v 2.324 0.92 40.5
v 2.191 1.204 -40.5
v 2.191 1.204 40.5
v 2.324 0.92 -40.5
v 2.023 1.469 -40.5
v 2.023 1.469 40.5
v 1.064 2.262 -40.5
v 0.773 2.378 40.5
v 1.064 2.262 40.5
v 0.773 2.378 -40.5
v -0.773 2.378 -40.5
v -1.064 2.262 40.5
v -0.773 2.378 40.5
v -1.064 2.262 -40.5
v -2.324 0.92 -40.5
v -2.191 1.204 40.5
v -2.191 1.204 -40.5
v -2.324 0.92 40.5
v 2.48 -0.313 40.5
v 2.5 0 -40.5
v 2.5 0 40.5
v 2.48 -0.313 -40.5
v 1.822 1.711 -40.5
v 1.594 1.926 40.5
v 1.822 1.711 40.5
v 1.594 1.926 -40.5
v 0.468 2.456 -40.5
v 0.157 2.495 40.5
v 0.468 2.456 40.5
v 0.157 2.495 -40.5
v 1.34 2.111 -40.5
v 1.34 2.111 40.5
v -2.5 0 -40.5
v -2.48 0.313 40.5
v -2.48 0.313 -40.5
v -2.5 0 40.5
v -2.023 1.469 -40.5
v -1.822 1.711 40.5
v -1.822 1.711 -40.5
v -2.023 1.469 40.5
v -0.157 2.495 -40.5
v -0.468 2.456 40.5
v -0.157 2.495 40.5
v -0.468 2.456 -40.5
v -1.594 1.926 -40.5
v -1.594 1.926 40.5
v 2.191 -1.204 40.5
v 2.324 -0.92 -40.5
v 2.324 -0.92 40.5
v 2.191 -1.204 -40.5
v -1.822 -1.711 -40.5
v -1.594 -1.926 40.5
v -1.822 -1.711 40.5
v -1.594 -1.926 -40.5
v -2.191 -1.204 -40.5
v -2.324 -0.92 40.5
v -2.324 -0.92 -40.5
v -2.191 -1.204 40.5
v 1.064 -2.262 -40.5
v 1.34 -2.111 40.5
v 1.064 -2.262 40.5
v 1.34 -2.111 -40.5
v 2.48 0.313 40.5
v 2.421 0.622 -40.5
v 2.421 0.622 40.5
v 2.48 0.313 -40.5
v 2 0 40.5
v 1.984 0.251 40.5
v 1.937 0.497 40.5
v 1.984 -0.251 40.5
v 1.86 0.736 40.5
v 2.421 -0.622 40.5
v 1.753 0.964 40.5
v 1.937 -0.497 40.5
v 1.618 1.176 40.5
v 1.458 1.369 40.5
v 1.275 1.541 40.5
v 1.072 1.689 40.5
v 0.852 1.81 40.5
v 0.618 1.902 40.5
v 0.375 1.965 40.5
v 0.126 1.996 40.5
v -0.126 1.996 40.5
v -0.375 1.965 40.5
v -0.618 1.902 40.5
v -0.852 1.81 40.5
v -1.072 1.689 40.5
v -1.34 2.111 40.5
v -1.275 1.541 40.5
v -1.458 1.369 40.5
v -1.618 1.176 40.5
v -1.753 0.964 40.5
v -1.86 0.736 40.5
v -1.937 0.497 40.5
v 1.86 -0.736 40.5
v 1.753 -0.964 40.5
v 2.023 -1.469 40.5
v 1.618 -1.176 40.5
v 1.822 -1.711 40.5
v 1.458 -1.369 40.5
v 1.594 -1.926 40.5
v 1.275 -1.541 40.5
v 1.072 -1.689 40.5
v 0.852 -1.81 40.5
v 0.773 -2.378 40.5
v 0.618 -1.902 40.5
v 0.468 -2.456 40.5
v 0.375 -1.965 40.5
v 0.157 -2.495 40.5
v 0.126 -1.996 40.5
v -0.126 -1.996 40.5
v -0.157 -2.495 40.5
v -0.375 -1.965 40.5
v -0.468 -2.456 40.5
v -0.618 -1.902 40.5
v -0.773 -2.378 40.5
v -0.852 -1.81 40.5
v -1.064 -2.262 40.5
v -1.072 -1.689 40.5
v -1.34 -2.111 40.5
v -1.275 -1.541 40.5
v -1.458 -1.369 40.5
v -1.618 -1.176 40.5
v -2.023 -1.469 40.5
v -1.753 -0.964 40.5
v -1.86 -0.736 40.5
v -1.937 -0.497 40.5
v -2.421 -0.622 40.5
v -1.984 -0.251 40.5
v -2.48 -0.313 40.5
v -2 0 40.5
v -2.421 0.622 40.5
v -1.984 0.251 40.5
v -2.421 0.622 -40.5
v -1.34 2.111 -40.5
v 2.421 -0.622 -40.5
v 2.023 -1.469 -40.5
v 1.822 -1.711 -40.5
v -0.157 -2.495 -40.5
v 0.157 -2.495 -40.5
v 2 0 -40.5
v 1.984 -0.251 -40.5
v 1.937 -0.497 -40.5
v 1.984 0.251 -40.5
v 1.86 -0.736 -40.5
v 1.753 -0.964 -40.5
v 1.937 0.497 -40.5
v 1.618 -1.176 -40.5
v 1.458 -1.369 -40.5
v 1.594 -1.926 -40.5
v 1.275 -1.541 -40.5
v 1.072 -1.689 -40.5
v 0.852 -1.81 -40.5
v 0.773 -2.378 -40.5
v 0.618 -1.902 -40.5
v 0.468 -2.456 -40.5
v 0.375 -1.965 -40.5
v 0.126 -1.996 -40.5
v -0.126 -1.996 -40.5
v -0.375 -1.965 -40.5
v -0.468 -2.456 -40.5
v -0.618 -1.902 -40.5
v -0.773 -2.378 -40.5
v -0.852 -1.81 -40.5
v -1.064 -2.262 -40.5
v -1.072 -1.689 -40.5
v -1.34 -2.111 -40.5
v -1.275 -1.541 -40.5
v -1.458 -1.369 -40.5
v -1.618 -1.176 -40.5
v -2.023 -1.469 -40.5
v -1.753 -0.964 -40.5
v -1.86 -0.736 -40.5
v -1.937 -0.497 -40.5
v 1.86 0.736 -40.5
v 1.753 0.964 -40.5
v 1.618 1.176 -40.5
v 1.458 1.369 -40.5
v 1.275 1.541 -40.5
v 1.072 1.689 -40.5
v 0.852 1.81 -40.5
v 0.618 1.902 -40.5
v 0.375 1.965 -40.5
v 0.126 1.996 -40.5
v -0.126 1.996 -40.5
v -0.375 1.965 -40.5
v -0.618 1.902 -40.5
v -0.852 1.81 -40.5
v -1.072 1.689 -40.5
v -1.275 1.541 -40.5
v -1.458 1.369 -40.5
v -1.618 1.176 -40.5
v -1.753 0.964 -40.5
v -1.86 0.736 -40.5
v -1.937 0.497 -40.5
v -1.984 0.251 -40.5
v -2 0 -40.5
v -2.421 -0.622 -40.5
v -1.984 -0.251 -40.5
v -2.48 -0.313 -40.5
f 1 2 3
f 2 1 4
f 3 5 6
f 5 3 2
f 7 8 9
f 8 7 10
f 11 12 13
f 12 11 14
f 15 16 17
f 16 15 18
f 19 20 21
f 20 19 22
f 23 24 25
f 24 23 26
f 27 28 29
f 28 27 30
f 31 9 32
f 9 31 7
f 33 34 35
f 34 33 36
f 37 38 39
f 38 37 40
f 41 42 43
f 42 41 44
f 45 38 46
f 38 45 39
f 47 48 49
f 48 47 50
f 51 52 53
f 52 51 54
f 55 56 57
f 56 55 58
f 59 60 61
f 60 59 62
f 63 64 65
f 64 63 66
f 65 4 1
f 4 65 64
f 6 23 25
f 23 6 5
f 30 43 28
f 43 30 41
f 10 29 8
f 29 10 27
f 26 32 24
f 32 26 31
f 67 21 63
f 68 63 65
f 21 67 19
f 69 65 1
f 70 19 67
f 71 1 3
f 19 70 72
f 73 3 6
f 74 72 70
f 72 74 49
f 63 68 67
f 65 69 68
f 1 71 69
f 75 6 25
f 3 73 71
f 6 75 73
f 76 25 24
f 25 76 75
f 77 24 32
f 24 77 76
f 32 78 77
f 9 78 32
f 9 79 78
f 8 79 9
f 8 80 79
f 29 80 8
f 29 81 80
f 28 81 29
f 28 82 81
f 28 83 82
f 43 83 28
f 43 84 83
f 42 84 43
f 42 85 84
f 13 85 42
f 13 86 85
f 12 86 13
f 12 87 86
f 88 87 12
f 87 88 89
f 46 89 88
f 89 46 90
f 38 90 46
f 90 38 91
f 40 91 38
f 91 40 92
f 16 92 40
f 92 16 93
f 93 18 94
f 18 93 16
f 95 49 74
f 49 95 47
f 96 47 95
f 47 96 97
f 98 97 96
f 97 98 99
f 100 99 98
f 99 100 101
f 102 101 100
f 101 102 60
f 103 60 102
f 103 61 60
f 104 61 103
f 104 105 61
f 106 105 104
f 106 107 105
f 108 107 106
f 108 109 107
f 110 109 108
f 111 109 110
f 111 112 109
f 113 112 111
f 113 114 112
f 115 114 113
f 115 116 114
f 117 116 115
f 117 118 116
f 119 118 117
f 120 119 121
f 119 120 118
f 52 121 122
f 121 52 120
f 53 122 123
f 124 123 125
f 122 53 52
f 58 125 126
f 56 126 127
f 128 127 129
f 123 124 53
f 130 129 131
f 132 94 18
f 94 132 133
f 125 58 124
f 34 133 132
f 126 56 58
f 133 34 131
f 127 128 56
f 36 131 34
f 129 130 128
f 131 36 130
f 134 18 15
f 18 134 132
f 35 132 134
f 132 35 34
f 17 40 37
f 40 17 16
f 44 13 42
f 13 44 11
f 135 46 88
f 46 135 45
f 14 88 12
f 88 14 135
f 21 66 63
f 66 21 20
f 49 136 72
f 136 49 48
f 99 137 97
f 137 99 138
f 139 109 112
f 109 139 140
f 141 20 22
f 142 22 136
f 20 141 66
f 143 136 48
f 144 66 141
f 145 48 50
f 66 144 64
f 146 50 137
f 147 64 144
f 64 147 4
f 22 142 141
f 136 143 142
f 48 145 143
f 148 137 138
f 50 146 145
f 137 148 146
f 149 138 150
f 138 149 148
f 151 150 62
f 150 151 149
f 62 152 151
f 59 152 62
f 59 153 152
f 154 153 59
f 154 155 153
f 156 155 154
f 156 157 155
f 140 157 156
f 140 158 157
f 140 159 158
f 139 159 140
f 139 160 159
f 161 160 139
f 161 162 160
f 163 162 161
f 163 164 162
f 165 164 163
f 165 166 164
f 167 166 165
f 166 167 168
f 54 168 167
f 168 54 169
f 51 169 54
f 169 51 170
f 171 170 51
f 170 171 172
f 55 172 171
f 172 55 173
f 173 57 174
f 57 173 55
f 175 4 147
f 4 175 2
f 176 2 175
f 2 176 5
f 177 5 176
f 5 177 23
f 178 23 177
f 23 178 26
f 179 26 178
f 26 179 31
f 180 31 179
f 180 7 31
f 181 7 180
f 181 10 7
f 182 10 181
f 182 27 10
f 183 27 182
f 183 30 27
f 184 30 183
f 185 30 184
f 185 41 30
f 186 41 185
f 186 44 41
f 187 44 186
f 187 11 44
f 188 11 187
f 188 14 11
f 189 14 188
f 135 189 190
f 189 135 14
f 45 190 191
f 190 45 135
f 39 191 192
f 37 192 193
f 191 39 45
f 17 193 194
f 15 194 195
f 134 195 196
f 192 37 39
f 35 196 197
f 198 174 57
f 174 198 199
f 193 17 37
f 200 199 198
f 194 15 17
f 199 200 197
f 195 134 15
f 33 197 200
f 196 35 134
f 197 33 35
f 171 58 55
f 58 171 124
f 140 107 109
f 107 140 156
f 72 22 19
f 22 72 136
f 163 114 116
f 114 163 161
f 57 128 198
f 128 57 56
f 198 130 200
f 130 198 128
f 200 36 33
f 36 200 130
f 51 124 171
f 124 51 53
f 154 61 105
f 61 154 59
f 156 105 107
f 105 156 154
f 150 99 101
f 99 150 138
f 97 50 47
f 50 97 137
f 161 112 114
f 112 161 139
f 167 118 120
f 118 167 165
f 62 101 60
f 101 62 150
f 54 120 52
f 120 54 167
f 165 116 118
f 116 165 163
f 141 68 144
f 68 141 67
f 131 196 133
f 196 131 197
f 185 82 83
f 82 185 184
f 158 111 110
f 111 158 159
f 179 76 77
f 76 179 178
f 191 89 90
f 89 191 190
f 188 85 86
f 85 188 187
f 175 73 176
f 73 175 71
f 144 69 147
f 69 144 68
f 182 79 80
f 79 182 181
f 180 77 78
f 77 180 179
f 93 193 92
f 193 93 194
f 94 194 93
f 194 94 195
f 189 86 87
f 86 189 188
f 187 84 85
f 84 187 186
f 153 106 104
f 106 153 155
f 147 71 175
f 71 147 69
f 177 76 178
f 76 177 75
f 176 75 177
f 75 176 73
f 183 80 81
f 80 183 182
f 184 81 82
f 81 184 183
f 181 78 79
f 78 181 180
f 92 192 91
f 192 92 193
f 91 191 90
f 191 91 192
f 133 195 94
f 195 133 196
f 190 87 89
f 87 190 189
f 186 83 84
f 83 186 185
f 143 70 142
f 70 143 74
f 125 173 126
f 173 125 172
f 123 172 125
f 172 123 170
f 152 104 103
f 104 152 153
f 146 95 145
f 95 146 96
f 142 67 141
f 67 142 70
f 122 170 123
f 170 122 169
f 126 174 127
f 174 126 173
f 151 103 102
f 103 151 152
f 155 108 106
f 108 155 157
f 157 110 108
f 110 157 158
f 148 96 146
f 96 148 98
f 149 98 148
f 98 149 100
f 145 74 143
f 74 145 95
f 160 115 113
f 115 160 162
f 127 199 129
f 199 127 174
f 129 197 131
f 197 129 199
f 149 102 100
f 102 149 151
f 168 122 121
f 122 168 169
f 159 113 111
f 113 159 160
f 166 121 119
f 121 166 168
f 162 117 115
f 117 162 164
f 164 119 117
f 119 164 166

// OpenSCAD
$fn = 50;


difference() {
	union() {
		translate(v = [0, 0, -40.5000000000]) {
			cylinder(h = 81, r = 2.5000000000);
		}
	}
	union() {
		translate(v = [0, 0, -100.0000000000]) {
			cylinder(h = 200, r = 2);
		}
	}
}
